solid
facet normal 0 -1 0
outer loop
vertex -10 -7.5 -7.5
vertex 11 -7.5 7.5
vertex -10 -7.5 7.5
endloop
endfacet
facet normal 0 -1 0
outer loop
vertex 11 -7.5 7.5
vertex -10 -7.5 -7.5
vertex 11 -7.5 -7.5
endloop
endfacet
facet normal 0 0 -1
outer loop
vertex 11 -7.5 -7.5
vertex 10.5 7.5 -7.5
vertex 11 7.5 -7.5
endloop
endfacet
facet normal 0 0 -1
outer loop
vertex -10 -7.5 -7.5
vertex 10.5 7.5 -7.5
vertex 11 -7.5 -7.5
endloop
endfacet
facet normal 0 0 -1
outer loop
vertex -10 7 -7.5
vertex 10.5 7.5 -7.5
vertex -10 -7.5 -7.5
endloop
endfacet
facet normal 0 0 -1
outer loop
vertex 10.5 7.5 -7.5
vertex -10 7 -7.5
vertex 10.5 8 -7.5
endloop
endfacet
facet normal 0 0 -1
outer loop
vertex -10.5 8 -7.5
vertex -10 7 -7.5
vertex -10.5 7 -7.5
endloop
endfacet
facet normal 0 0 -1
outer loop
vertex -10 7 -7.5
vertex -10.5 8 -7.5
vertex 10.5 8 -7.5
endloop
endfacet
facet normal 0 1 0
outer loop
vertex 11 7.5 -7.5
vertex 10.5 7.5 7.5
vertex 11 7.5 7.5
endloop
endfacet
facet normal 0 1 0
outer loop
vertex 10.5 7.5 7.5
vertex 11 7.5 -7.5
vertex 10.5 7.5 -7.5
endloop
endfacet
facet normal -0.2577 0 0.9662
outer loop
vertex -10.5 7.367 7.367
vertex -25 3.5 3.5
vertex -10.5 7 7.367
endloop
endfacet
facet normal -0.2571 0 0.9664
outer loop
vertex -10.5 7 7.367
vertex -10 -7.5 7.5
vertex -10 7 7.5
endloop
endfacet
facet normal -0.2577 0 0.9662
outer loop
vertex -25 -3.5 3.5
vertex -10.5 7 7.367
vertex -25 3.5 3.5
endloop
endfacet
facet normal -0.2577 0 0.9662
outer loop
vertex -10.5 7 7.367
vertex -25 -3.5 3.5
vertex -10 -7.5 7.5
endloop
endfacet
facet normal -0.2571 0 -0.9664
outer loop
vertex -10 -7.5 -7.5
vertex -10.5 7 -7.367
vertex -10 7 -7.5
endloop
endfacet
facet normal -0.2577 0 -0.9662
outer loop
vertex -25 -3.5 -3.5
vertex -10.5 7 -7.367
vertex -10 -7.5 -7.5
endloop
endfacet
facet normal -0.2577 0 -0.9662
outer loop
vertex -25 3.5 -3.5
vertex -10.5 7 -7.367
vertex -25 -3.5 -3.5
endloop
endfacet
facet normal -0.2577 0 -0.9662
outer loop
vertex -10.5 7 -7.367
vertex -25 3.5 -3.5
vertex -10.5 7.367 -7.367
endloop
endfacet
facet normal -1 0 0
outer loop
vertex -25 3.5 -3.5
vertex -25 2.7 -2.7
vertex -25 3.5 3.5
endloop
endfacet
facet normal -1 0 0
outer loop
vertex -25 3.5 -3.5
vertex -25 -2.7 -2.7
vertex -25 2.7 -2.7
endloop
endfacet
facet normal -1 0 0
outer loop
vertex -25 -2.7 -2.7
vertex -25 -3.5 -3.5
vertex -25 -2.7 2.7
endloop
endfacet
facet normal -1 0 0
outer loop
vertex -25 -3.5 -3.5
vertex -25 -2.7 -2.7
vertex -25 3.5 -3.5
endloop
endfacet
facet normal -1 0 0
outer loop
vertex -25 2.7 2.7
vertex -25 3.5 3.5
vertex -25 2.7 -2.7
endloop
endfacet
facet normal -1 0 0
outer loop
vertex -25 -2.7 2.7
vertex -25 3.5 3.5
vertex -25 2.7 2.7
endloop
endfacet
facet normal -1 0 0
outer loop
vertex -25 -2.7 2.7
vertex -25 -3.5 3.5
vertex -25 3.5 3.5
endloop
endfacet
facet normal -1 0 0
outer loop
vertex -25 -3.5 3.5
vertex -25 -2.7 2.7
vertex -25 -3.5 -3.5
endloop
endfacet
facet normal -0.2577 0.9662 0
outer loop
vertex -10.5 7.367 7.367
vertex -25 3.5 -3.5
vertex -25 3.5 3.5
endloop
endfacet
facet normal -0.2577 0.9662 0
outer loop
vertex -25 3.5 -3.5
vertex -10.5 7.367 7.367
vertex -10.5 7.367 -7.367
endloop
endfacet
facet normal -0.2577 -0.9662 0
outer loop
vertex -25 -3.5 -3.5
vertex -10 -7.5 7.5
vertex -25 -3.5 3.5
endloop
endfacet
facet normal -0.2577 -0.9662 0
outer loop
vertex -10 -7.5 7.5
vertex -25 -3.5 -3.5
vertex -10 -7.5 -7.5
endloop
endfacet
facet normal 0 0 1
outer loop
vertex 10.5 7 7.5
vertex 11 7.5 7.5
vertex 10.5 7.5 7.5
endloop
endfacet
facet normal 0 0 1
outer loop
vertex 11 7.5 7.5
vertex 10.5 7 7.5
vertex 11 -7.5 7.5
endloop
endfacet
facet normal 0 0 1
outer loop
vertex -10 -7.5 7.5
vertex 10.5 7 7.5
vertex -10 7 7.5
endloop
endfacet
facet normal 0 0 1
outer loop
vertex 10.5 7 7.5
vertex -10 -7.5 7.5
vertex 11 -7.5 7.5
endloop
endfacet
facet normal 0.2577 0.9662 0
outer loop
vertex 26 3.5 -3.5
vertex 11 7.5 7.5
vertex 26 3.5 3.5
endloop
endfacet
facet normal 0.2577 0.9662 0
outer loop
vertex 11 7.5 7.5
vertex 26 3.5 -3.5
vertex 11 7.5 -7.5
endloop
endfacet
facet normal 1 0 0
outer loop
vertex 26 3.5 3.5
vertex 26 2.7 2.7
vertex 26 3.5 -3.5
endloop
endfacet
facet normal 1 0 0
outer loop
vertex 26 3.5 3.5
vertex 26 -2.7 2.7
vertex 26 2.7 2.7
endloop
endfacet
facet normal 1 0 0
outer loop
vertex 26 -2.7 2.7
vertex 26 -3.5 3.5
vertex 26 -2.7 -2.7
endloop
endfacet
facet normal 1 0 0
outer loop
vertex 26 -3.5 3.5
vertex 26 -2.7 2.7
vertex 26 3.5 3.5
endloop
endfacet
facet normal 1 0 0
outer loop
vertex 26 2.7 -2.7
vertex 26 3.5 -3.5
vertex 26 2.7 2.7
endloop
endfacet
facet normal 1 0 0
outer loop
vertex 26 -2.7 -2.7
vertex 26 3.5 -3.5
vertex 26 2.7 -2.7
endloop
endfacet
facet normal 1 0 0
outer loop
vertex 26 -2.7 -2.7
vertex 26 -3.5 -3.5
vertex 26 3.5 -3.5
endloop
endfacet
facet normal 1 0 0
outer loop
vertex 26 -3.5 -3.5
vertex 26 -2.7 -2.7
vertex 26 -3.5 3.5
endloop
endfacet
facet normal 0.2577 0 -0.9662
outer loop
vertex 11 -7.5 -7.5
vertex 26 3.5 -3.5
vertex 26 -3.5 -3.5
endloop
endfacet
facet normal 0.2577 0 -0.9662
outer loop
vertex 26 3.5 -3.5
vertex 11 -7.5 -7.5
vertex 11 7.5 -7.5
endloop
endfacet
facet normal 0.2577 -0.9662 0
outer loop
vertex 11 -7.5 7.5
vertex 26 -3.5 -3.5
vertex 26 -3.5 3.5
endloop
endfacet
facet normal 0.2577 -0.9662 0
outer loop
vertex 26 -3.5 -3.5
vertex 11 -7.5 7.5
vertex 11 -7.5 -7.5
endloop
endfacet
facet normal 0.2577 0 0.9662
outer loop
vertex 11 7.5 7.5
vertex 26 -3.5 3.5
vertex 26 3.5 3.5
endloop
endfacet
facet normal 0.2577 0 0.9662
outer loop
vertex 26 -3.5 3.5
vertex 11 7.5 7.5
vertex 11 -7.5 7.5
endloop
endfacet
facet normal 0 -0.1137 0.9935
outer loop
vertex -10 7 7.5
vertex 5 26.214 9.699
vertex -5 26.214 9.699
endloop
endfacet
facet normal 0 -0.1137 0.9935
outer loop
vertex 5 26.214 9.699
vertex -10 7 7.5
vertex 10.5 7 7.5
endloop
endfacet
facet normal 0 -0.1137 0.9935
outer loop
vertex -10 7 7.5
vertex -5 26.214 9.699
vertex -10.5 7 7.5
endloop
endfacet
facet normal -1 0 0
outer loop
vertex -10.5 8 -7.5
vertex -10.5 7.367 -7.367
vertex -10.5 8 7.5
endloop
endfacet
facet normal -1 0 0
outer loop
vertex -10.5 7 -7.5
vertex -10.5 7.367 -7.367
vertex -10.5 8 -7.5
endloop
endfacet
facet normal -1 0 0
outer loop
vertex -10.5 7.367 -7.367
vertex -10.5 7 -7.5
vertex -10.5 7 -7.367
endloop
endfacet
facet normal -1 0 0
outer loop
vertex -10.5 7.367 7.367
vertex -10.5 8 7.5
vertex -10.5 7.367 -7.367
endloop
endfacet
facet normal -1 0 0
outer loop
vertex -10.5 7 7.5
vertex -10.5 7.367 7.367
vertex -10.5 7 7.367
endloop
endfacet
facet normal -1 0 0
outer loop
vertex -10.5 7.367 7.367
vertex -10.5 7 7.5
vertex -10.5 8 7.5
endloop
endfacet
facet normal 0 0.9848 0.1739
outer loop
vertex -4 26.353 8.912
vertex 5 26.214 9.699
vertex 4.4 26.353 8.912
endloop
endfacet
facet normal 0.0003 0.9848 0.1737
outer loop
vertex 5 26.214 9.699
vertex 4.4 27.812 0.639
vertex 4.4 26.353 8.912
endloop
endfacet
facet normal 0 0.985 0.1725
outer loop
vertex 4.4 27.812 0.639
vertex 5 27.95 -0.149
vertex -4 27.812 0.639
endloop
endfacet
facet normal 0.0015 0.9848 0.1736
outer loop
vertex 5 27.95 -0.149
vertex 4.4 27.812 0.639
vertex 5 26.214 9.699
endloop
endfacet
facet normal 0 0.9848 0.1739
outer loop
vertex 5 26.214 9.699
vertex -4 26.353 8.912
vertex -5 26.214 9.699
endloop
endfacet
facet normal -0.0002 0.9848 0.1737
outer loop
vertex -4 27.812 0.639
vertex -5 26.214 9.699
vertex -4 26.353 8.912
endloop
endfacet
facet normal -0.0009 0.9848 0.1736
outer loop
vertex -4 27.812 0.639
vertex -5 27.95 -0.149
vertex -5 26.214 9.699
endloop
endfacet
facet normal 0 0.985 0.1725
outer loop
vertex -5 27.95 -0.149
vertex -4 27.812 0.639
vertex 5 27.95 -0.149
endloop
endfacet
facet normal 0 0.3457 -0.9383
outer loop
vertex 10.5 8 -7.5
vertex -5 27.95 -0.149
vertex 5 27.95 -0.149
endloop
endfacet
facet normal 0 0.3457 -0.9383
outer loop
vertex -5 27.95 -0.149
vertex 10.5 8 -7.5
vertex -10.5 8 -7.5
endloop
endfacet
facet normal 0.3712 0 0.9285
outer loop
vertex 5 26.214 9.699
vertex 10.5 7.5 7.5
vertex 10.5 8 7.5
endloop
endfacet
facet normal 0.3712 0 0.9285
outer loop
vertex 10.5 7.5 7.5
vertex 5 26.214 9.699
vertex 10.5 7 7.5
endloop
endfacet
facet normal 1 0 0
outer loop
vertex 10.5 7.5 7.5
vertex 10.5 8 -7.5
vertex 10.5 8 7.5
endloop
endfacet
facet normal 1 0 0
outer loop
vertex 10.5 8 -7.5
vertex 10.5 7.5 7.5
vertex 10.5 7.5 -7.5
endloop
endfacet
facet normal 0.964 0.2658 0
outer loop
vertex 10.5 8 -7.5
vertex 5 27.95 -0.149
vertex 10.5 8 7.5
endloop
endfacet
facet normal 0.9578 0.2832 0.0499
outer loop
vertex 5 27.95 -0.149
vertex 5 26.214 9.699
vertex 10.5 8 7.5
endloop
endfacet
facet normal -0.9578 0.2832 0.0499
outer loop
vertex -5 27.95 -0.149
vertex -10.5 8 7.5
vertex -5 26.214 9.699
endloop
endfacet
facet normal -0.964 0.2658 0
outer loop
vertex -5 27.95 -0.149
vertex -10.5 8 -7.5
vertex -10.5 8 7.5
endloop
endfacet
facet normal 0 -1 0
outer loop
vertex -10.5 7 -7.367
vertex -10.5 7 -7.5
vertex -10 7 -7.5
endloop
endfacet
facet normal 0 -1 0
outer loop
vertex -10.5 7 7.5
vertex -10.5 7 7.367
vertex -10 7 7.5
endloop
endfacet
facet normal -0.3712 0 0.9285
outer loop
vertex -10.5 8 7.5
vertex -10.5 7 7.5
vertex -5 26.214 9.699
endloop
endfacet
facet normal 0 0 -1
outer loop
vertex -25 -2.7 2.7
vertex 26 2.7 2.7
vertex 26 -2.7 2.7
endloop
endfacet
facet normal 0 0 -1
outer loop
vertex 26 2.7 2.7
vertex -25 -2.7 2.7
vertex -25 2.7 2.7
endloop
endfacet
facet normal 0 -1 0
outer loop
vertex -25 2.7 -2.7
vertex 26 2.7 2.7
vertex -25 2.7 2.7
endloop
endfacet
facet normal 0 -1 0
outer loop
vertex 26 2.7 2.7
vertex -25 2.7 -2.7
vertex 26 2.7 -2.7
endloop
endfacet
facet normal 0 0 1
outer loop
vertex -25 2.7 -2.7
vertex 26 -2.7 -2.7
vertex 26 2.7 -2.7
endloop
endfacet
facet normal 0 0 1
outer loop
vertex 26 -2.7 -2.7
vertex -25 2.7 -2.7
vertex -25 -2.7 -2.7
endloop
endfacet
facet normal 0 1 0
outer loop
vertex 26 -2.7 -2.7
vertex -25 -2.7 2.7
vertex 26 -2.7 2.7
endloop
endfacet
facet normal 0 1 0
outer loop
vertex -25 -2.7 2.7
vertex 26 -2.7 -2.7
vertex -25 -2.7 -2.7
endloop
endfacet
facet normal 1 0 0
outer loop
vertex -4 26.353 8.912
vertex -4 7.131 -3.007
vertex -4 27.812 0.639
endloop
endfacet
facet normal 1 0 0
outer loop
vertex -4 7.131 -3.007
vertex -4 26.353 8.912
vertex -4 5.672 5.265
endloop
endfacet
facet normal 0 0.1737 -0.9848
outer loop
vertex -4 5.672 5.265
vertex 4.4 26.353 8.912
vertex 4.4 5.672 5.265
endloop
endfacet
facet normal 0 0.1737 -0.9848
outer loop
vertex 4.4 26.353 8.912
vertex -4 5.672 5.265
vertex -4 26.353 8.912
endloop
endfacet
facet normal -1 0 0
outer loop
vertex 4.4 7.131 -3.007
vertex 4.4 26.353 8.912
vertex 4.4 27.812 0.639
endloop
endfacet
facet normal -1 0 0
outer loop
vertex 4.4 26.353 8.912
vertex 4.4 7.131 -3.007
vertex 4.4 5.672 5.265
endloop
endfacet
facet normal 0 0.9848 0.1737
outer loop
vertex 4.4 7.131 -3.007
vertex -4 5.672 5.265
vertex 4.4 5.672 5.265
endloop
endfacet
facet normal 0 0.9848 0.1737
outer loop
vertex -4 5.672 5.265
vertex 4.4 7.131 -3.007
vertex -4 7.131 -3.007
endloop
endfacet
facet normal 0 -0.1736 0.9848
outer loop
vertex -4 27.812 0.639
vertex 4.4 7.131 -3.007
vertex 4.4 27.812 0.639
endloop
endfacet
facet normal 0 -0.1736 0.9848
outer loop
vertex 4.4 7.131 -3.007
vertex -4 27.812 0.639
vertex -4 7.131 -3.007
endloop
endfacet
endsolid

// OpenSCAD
pdx1 = 5;
pdx2 = 8;
pdxm = 13;

t = 1;
tol = 0.2;
x1 = 50;
x2 = 20;
y1 = 26;

arot = 10;

difference(){
union(){
    hull(){
      translate([-x1/2,-pdx1/2-t,-pdx1/2-t])cube([1,pdx1+2*t,pdx1+2*t]);
      translate([-x2/2,-pdxm/2-t,-pdxm/2-t])cube([1,pdxm+2*t,pdxm+2*t]);
        
    };
    hull(){
      translate([-x2/2,-pdxm/2-t,-pdxm/2-t])cube([1,pdxm+2*t,pdxm+2*t]);
      translate([+x1/2,-pdx1/2-t,-pdx1/2-t])cube([1,pdx1+2*t,pdx1+2*t]);  
      translate([+x2/2,-pdxm/2-t,-pdxm/2-t])cube([1,pdxm+2*t,pdxm+2*t]);
    };
    hull(){
      rotate([arot,0,0])translate([-pdx2/2-t,1/2+y1,-pdx2/2-t])cube([pdx2+2*t,1,pdx2+2*t]);
      rotate([ 0,0,0])translate([-pdxm/2-t-6/2,1/2+pdxm/2,-pdxm/2-t])cube([pdxm+2*t+6,1,pdxm+2*t]);
    };
};

  translate([-50,-pdx1/2-tol,-pdx1/2-tol])cube([100,pdx1+2*tol,pdx1+2*tol]);
  rotate([arot,0,0])translate([-pdx2/2,1/2+y1-20,-pdx2/2-tol])cube([pdx2+2*tol,30,pdx2+2*tol]);
};
